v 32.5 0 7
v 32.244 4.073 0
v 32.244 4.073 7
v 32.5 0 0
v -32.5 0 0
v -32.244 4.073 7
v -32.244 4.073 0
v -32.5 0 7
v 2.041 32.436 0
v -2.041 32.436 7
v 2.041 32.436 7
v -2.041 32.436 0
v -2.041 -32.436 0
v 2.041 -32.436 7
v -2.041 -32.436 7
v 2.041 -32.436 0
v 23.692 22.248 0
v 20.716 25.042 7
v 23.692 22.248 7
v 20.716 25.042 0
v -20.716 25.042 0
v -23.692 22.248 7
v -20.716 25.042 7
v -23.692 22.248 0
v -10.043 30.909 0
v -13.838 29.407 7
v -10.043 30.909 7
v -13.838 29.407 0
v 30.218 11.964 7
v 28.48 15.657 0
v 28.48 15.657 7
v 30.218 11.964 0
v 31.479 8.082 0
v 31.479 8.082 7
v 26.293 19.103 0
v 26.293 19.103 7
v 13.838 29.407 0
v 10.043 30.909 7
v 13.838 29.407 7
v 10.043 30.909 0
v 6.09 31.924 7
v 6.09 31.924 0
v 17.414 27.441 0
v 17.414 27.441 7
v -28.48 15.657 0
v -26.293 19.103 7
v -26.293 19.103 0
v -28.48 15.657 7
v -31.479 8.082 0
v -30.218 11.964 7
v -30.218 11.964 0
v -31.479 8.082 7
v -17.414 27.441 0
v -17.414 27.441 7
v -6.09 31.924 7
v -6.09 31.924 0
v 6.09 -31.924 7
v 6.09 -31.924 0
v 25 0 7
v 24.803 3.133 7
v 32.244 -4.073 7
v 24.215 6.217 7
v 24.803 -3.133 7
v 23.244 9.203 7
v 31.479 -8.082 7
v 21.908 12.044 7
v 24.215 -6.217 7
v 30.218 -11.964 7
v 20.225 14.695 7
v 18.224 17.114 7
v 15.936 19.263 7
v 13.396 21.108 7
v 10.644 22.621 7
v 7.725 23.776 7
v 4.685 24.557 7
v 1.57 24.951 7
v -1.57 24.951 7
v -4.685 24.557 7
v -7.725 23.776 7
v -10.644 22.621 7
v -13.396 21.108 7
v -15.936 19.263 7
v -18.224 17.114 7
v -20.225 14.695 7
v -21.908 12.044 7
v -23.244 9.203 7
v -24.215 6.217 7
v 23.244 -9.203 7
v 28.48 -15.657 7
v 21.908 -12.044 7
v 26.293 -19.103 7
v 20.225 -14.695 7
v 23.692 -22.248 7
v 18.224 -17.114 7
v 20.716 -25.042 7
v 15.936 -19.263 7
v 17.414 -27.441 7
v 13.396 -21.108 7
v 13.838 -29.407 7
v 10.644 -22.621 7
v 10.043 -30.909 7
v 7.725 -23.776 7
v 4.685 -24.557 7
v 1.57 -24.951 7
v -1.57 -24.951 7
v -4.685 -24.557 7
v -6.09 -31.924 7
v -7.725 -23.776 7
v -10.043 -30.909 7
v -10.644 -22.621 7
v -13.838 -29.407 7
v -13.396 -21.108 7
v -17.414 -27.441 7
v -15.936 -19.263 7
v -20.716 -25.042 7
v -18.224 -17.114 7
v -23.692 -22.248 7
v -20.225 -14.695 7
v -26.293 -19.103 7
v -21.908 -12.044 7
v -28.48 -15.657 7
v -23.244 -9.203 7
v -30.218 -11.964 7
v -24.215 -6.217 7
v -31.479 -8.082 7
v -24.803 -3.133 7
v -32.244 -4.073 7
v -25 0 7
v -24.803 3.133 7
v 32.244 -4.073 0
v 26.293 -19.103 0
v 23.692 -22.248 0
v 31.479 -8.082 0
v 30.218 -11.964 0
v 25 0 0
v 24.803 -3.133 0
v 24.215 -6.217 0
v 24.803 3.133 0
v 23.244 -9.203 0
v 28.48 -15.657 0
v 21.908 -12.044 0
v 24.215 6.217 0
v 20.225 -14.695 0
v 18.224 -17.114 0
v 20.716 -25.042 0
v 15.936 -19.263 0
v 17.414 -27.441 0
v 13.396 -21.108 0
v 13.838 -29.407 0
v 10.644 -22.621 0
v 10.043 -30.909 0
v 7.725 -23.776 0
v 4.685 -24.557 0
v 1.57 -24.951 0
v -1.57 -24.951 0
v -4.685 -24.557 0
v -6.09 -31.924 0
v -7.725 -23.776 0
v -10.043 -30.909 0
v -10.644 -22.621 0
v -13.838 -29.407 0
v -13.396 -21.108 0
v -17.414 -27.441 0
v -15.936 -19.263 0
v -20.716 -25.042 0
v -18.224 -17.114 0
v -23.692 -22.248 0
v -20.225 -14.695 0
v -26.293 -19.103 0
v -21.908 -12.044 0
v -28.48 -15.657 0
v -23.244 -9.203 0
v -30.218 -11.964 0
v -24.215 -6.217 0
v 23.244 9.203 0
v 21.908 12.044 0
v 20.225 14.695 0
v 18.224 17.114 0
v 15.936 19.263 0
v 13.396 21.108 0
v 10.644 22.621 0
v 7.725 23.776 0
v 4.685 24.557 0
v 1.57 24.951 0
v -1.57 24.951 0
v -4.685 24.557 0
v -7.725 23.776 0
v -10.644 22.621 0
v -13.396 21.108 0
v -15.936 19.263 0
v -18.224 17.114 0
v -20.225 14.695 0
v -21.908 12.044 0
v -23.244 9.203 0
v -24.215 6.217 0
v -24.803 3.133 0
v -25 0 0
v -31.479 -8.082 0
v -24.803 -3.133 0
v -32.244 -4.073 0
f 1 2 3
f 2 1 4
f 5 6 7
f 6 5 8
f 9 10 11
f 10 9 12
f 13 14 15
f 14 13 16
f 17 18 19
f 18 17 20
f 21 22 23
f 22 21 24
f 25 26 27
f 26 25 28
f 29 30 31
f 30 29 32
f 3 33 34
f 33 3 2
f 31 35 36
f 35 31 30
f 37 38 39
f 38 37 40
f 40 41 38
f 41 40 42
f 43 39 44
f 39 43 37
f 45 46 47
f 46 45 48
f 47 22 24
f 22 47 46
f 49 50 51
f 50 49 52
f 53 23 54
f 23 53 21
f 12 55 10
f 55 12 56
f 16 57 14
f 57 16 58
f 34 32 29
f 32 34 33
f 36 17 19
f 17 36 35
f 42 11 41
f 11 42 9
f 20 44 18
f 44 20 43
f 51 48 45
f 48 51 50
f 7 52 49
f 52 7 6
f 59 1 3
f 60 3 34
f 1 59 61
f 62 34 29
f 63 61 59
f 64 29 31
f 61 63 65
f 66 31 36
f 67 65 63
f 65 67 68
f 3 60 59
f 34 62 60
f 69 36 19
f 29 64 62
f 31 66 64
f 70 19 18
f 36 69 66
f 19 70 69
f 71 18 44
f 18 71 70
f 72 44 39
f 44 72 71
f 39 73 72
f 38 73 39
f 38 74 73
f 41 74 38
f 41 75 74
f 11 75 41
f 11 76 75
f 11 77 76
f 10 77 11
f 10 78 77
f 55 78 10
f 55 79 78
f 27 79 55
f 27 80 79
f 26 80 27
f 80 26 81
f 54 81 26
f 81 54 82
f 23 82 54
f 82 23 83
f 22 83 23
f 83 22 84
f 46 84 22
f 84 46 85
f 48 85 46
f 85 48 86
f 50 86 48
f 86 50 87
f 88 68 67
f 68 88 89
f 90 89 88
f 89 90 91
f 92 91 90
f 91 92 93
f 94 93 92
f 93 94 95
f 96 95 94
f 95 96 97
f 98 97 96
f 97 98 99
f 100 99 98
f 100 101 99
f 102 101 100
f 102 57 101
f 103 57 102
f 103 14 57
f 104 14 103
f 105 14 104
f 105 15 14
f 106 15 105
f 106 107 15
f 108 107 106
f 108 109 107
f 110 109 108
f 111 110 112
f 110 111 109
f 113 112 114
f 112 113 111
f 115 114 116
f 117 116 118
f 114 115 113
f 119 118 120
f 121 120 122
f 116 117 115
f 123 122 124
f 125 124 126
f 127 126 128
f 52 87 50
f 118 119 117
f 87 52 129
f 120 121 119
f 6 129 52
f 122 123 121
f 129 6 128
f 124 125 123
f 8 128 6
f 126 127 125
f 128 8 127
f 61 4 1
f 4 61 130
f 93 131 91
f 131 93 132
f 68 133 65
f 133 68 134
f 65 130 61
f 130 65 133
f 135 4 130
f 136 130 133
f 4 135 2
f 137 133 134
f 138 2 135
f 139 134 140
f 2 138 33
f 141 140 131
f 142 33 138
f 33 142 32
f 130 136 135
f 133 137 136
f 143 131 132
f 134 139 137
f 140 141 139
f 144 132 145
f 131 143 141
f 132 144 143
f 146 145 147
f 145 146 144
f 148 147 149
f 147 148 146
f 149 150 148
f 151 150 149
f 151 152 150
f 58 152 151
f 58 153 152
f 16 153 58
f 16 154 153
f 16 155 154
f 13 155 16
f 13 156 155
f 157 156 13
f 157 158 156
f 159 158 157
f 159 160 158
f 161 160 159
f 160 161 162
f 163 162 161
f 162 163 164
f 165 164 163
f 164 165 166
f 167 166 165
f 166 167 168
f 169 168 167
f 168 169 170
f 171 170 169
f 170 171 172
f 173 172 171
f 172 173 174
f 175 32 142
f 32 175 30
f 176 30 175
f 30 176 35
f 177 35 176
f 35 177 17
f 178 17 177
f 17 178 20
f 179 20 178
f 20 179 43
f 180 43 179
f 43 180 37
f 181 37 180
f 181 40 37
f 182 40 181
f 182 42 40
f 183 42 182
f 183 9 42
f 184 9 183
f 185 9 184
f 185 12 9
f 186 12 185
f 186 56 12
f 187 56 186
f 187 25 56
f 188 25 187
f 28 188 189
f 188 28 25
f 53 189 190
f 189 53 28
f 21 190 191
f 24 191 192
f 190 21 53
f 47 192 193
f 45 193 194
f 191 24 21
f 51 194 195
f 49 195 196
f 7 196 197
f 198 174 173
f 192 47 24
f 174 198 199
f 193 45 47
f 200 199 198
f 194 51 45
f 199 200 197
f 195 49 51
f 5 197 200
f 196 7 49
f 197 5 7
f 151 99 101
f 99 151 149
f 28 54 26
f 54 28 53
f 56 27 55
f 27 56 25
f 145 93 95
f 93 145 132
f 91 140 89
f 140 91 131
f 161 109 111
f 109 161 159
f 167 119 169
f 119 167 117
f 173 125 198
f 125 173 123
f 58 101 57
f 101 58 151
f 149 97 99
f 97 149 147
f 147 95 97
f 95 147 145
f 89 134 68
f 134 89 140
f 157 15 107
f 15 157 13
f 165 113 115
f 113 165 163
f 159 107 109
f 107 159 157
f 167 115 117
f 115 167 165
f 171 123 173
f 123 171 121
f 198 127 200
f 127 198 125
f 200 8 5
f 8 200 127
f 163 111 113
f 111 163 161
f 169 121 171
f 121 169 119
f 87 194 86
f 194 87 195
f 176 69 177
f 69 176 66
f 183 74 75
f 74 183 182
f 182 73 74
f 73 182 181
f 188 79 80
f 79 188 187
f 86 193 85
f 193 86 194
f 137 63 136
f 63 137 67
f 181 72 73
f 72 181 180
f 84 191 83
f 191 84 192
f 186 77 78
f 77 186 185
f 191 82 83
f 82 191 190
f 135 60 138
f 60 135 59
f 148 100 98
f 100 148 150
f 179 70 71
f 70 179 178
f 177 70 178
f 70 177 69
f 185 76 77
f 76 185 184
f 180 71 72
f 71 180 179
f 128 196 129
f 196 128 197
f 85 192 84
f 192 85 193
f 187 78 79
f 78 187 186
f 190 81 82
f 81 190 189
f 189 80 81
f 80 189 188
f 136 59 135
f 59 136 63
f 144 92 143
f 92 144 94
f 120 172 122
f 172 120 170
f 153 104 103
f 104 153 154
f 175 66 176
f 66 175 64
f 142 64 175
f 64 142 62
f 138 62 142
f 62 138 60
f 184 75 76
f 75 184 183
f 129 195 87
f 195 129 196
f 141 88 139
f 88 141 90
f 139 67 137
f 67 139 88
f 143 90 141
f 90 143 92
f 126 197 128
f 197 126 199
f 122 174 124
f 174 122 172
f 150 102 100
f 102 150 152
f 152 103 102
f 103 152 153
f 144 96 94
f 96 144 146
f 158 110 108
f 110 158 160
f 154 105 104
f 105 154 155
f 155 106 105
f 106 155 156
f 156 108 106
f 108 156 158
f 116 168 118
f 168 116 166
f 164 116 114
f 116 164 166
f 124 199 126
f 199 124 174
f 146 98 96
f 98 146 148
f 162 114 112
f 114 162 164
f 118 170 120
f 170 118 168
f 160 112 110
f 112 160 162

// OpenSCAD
$fn = 50;


difference() {
	union() {
		translate(v = [0, 0, 0]) {
			rotate(a = [0, 0, 0]) {
				cylinder(h = 7, r = 32.5000000000);
			}
		}
	}
	union() {
		translate(v = [0, 0, 0]) {
			rotate(a = [0, 0, 0]) {
				cylinder(h = 7, r = 25.0000000000);
			}
		}
	}
}
